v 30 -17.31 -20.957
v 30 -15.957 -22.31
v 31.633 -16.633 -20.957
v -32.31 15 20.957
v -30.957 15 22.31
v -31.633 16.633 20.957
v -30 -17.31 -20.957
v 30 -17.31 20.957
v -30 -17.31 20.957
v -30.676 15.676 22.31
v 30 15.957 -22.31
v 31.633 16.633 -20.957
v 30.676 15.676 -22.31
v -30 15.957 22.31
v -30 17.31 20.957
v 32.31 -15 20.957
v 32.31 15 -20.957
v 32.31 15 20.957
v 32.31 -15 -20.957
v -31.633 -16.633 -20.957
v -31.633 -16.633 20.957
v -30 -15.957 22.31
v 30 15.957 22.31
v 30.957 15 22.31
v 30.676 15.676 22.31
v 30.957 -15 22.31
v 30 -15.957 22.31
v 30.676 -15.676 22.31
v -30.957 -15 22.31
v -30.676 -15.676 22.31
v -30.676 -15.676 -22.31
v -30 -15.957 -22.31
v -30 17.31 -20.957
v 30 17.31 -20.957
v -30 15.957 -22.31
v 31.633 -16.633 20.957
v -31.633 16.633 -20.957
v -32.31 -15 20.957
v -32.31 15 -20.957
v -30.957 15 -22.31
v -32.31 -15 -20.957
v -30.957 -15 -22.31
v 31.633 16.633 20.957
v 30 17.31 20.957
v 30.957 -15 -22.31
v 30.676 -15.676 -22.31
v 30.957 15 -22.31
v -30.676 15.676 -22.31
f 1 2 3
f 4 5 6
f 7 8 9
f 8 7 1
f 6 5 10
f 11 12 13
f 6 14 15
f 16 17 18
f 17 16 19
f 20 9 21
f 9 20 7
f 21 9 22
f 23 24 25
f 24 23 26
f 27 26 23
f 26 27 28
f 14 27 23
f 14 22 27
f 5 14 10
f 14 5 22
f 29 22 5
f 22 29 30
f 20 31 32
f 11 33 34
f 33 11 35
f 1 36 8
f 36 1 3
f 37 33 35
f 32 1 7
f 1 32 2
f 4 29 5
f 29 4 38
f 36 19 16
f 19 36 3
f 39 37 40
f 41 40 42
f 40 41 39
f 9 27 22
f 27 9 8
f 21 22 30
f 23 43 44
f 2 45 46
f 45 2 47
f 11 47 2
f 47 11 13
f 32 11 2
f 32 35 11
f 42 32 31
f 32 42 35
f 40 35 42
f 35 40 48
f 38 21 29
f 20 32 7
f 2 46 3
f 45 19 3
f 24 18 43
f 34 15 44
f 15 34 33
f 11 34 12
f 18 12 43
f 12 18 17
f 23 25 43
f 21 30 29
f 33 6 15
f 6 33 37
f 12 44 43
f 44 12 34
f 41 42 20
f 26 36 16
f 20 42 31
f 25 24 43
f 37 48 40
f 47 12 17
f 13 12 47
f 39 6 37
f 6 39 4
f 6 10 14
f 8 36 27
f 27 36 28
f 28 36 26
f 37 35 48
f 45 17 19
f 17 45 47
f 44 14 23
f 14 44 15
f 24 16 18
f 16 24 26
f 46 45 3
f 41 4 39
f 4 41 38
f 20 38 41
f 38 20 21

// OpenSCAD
// Parameters for the rectangular block
block_length = 60;  // Length of the block
block_width = 30;   // Width of the block
block_height = 40;  // Height of the block
frame_thickness = 5; // Thickness of the outer frame
cutout_width = 20;  // Width of the rectangular cutouts
cutout_height = 10; // Height of the rectangular cutouts
cutout_spacing = 10; // Spacing between the two cutouts
corner_radius = 2;   // Radius for rounded edges of the cutouts

module rounded_cutout(length, width, height, radius) {
    difference() {
        cube([length, width, height], center = true);
        minkowski() {
            cube([length, width, height], center = true);
            sphere(radius);
        }
    }
}

module rectangular_block_with_cutouts() {
    // Outer block with softened edges
    difference() {
        minkowski() {
            cube([block_length, block_width, block_height], center = true);
            sphere(frame_thickness / 2);
        }
        
        // Create the two rounded rectangular cutouts
        translate([0, 0, block_height / 4])
            rounded_cutout(block_length, cutout_width, cutout_height, corner_radius);
        translate([0, 0, -block_height / 4])
            rounded_cutout(block_length, cutout_width, cutout_height, corner_radius);
    }
}

// Render the model
rectangular_block_with_cutouts();
